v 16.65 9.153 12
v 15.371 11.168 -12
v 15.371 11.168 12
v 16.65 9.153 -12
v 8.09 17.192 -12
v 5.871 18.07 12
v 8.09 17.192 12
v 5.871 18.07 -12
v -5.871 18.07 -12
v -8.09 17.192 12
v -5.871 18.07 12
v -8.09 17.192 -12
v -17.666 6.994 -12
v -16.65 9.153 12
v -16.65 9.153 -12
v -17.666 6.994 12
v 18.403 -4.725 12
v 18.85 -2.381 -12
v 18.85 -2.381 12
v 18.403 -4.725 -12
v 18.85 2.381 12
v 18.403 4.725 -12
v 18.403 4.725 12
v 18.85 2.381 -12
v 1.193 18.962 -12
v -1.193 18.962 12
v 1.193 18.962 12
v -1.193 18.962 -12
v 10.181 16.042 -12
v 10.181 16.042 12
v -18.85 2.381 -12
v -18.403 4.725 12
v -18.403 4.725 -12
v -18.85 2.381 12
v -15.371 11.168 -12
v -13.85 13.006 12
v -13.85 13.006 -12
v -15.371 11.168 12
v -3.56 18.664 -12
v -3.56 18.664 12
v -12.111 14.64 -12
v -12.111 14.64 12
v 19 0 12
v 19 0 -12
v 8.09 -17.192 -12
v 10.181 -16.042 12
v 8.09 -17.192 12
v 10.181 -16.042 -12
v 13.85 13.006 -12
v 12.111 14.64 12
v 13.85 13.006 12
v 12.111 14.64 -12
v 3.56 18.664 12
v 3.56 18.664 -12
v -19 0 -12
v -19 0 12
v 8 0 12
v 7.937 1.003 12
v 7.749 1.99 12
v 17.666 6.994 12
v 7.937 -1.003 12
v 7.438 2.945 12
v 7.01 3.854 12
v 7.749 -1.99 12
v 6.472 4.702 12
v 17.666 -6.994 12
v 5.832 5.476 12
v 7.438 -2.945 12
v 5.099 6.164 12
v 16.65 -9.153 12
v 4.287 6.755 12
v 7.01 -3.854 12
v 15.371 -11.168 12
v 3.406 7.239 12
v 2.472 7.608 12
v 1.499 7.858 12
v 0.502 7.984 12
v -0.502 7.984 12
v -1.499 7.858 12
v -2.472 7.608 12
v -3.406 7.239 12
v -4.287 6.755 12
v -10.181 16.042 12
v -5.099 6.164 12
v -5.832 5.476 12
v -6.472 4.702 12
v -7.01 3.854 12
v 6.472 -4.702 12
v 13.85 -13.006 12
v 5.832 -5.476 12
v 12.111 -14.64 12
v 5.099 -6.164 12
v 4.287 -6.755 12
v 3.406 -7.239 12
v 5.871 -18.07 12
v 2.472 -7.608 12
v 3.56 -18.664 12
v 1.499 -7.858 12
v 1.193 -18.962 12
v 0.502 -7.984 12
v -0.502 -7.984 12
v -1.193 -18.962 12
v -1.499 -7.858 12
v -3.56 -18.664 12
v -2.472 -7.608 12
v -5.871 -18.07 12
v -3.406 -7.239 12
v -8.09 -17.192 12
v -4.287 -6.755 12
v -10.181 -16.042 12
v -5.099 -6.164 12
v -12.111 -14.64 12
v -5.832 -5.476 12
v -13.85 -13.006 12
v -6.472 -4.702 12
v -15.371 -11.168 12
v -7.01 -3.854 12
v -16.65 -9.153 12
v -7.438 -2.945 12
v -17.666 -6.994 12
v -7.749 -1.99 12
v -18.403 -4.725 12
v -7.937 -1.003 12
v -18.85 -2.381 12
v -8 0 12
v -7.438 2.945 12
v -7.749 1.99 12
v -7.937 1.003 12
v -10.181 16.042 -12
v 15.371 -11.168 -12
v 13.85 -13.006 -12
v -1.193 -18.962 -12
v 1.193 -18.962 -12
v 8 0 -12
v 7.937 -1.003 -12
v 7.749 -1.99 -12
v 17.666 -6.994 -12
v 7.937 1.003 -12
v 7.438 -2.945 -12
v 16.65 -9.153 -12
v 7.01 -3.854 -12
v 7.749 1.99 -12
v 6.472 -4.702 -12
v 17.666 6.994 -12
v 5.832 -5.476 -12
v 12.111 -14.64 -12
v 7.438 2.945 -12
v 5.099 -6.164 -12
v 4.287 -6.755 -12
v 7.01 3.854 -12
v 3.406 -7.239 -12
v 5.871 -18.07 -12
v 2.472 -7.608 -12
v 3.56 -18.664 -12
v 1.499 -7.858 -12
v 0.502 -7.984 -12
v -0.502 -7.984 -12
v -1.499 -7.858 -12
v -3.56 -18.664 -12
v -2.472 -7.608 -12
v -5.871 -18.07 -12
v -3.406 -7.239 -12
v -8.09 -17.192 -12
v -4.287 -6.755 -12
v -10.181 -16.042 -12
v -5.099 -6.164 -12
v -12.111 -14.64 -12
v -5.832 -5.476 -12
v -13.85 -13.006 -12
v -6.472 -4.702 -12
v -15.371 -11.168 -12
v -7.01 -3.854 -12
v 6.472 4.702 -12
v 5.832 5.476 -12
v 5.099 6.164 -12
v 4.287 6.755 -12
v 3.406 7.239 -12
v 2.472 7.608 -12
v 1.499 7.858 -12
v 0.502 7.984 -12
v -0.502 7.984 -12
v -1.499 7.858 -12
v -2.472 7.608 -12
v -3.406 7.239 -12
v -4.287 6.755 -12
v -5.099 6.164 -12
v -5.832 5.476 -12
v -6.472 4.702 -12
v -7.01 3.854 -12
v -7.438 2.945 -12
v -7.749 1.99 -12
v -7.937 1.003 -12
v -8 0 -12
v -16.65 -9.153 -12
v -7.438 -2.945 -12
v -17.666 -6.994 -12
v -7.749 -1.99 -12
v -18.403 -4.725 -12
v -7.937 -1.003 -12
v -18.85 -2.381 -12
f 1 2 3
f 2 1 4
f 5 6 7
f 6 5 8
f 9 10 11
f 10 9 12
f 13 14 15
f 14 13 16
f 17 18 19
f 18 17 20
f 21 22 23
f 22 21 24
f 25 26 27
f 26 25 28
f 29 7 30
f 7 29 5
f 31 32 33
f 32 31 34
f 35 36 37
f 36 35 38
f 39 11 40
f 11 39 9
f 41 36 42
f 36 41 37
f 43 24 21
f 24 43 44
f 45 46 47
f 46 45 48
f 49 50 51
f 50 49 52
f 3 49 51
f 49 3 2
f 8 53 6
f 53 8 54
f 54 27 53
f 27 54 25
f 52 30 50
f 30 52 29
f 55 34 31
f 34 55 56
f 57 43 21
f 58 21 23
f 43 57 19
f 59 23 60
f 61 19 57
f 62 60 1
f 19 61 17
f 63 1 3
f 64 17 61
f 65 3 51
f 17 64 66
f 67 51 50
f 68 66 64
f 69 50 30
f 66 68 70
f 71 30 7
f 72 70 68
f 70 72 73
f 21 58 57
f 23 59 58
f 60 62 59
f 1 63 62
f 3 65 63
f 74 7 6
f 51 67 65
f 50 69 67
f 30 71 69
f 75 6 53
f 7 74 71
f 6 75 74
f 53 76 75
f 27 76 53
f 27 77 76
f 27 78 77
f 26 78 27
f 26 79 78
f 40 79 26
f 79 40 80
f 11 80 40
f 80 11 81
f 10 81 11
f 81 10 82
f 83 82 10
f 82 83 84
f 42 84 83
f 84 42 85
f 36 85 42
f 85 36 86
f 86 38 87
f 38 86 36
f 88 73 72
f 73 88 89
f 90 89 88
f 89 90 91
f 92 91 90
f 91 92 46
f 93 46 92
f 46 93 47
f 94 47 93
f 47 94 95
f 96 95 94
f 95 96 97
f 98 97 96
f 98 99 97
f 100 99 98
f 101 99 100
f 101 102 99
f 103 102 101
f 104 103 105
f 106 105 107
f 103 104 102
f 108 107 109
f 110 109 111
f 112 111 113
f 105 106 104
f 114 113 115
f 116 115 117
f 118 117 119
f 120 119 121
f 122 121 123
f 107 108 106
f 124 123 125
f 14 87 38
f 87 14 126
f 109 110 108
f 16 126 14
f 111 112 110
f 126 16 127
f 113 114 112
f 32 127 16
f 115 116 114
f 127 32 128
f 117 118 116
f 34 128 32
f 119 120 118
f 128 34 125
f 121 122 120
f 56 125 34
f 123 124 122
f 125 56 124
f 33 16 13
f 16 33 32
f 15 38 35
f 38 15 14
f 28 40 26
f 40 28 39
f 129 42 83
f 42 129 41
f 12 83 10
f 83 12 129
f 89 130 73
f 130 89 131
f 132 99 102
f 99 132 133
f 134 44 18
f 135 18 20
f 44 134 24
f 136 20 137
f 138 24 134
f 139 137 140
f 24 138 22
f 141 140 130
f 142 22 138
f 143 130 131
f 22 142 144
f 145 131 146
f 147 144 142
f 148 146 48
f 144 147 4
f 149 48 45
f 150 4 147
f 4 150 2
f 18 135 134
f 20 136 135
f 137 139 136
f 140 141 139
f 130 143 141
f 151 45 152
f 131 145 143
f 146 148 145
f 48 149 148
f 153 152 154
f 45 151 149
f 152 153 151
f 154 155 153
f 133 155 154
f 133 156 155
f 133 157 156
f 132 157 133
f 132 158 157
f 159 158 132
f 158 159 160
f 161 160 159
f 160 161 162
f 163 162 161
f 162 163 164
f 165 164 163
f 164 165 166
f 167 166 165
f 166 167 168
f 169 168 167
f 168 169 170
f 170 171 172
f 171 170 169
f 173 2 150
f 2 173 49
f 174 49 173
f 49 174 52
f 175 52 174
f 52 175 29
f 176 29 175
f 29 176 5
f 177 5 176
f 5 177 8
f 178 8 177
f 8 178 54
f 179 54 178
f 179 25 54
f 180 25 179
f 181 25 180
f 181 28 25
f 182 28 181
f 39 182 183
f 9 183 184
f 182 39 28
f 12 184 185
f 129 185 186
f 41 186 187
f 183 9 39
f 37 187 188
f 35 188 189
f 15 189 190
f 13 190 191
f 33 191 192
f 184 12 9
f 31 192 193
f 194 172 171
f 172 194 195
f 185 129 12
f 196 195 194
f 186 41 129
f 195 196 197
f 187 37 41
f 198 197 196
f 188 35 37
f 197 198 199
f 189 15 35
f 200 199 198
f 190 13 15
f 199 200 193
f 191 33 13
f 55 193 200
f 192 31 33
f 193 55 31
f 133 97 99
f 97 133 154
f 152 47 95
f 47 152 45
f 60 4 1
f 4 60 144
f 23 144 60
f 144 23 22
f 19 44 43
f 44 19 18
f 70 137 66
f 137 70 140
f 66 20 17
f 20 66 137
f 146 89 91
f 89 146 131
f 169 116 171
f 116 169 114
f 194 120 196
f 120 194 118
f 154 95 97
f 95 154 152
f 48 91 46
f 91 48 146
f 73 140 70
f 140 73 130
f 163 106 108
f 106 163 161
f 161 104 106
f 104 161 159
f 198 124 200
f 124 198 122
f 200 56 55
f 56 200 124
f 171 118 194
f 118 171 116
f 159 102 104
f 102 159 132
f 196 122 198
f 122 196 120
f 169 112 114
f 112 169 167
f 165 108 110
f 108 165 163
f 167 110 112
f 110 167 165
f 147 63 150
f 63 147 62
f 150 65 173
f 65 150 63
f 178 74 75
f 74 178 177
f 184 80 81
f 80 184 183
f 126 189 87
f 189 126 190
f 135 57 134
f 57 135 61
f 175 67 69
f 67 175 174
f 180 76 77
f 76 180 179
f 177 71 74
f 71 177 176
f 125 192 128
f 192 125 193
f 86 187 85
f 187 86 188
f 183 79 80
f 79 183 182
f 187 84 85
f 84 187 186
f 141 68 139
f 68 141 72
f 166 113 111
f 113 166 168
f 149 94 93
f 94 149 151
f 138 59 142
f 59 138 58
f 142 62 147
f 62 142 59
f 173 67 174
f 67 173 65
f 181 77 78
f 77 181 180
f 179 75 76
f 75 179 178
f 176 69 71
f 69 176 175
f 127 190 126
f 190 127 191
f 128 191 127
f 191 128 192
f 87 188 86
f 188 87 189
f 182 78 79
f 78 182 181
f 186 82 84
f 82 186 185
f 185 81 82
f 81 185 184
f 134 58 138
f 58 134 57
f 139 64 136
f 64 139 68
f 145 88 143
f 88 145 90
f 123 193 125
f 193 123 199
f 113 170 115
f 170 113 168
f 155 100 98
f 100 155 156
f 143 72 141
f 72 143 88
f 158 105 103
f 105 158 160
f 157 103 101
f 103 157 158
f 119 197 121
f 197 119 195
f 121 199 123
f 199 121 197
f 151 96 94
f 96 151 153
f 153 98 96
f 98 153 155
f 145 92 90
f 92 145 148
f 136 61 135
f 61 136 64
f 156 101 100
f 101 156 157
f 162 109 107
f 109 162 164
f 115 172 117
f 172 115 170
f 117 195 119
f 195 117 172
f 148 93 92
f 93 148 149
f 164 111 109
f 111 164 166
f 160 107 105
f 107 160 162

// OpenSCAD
$fn = 50;


difference() {
	union() {
		translate(v = [0, 0, -12.0000000000]) {
			cylinder(h = 24, r = 19.0000000000);
		}
	}
	union() {
		translate(v = [0, 0, -100.0000000000]) {
			cylinder(h = 200, r = 8);
		}
	}
}
